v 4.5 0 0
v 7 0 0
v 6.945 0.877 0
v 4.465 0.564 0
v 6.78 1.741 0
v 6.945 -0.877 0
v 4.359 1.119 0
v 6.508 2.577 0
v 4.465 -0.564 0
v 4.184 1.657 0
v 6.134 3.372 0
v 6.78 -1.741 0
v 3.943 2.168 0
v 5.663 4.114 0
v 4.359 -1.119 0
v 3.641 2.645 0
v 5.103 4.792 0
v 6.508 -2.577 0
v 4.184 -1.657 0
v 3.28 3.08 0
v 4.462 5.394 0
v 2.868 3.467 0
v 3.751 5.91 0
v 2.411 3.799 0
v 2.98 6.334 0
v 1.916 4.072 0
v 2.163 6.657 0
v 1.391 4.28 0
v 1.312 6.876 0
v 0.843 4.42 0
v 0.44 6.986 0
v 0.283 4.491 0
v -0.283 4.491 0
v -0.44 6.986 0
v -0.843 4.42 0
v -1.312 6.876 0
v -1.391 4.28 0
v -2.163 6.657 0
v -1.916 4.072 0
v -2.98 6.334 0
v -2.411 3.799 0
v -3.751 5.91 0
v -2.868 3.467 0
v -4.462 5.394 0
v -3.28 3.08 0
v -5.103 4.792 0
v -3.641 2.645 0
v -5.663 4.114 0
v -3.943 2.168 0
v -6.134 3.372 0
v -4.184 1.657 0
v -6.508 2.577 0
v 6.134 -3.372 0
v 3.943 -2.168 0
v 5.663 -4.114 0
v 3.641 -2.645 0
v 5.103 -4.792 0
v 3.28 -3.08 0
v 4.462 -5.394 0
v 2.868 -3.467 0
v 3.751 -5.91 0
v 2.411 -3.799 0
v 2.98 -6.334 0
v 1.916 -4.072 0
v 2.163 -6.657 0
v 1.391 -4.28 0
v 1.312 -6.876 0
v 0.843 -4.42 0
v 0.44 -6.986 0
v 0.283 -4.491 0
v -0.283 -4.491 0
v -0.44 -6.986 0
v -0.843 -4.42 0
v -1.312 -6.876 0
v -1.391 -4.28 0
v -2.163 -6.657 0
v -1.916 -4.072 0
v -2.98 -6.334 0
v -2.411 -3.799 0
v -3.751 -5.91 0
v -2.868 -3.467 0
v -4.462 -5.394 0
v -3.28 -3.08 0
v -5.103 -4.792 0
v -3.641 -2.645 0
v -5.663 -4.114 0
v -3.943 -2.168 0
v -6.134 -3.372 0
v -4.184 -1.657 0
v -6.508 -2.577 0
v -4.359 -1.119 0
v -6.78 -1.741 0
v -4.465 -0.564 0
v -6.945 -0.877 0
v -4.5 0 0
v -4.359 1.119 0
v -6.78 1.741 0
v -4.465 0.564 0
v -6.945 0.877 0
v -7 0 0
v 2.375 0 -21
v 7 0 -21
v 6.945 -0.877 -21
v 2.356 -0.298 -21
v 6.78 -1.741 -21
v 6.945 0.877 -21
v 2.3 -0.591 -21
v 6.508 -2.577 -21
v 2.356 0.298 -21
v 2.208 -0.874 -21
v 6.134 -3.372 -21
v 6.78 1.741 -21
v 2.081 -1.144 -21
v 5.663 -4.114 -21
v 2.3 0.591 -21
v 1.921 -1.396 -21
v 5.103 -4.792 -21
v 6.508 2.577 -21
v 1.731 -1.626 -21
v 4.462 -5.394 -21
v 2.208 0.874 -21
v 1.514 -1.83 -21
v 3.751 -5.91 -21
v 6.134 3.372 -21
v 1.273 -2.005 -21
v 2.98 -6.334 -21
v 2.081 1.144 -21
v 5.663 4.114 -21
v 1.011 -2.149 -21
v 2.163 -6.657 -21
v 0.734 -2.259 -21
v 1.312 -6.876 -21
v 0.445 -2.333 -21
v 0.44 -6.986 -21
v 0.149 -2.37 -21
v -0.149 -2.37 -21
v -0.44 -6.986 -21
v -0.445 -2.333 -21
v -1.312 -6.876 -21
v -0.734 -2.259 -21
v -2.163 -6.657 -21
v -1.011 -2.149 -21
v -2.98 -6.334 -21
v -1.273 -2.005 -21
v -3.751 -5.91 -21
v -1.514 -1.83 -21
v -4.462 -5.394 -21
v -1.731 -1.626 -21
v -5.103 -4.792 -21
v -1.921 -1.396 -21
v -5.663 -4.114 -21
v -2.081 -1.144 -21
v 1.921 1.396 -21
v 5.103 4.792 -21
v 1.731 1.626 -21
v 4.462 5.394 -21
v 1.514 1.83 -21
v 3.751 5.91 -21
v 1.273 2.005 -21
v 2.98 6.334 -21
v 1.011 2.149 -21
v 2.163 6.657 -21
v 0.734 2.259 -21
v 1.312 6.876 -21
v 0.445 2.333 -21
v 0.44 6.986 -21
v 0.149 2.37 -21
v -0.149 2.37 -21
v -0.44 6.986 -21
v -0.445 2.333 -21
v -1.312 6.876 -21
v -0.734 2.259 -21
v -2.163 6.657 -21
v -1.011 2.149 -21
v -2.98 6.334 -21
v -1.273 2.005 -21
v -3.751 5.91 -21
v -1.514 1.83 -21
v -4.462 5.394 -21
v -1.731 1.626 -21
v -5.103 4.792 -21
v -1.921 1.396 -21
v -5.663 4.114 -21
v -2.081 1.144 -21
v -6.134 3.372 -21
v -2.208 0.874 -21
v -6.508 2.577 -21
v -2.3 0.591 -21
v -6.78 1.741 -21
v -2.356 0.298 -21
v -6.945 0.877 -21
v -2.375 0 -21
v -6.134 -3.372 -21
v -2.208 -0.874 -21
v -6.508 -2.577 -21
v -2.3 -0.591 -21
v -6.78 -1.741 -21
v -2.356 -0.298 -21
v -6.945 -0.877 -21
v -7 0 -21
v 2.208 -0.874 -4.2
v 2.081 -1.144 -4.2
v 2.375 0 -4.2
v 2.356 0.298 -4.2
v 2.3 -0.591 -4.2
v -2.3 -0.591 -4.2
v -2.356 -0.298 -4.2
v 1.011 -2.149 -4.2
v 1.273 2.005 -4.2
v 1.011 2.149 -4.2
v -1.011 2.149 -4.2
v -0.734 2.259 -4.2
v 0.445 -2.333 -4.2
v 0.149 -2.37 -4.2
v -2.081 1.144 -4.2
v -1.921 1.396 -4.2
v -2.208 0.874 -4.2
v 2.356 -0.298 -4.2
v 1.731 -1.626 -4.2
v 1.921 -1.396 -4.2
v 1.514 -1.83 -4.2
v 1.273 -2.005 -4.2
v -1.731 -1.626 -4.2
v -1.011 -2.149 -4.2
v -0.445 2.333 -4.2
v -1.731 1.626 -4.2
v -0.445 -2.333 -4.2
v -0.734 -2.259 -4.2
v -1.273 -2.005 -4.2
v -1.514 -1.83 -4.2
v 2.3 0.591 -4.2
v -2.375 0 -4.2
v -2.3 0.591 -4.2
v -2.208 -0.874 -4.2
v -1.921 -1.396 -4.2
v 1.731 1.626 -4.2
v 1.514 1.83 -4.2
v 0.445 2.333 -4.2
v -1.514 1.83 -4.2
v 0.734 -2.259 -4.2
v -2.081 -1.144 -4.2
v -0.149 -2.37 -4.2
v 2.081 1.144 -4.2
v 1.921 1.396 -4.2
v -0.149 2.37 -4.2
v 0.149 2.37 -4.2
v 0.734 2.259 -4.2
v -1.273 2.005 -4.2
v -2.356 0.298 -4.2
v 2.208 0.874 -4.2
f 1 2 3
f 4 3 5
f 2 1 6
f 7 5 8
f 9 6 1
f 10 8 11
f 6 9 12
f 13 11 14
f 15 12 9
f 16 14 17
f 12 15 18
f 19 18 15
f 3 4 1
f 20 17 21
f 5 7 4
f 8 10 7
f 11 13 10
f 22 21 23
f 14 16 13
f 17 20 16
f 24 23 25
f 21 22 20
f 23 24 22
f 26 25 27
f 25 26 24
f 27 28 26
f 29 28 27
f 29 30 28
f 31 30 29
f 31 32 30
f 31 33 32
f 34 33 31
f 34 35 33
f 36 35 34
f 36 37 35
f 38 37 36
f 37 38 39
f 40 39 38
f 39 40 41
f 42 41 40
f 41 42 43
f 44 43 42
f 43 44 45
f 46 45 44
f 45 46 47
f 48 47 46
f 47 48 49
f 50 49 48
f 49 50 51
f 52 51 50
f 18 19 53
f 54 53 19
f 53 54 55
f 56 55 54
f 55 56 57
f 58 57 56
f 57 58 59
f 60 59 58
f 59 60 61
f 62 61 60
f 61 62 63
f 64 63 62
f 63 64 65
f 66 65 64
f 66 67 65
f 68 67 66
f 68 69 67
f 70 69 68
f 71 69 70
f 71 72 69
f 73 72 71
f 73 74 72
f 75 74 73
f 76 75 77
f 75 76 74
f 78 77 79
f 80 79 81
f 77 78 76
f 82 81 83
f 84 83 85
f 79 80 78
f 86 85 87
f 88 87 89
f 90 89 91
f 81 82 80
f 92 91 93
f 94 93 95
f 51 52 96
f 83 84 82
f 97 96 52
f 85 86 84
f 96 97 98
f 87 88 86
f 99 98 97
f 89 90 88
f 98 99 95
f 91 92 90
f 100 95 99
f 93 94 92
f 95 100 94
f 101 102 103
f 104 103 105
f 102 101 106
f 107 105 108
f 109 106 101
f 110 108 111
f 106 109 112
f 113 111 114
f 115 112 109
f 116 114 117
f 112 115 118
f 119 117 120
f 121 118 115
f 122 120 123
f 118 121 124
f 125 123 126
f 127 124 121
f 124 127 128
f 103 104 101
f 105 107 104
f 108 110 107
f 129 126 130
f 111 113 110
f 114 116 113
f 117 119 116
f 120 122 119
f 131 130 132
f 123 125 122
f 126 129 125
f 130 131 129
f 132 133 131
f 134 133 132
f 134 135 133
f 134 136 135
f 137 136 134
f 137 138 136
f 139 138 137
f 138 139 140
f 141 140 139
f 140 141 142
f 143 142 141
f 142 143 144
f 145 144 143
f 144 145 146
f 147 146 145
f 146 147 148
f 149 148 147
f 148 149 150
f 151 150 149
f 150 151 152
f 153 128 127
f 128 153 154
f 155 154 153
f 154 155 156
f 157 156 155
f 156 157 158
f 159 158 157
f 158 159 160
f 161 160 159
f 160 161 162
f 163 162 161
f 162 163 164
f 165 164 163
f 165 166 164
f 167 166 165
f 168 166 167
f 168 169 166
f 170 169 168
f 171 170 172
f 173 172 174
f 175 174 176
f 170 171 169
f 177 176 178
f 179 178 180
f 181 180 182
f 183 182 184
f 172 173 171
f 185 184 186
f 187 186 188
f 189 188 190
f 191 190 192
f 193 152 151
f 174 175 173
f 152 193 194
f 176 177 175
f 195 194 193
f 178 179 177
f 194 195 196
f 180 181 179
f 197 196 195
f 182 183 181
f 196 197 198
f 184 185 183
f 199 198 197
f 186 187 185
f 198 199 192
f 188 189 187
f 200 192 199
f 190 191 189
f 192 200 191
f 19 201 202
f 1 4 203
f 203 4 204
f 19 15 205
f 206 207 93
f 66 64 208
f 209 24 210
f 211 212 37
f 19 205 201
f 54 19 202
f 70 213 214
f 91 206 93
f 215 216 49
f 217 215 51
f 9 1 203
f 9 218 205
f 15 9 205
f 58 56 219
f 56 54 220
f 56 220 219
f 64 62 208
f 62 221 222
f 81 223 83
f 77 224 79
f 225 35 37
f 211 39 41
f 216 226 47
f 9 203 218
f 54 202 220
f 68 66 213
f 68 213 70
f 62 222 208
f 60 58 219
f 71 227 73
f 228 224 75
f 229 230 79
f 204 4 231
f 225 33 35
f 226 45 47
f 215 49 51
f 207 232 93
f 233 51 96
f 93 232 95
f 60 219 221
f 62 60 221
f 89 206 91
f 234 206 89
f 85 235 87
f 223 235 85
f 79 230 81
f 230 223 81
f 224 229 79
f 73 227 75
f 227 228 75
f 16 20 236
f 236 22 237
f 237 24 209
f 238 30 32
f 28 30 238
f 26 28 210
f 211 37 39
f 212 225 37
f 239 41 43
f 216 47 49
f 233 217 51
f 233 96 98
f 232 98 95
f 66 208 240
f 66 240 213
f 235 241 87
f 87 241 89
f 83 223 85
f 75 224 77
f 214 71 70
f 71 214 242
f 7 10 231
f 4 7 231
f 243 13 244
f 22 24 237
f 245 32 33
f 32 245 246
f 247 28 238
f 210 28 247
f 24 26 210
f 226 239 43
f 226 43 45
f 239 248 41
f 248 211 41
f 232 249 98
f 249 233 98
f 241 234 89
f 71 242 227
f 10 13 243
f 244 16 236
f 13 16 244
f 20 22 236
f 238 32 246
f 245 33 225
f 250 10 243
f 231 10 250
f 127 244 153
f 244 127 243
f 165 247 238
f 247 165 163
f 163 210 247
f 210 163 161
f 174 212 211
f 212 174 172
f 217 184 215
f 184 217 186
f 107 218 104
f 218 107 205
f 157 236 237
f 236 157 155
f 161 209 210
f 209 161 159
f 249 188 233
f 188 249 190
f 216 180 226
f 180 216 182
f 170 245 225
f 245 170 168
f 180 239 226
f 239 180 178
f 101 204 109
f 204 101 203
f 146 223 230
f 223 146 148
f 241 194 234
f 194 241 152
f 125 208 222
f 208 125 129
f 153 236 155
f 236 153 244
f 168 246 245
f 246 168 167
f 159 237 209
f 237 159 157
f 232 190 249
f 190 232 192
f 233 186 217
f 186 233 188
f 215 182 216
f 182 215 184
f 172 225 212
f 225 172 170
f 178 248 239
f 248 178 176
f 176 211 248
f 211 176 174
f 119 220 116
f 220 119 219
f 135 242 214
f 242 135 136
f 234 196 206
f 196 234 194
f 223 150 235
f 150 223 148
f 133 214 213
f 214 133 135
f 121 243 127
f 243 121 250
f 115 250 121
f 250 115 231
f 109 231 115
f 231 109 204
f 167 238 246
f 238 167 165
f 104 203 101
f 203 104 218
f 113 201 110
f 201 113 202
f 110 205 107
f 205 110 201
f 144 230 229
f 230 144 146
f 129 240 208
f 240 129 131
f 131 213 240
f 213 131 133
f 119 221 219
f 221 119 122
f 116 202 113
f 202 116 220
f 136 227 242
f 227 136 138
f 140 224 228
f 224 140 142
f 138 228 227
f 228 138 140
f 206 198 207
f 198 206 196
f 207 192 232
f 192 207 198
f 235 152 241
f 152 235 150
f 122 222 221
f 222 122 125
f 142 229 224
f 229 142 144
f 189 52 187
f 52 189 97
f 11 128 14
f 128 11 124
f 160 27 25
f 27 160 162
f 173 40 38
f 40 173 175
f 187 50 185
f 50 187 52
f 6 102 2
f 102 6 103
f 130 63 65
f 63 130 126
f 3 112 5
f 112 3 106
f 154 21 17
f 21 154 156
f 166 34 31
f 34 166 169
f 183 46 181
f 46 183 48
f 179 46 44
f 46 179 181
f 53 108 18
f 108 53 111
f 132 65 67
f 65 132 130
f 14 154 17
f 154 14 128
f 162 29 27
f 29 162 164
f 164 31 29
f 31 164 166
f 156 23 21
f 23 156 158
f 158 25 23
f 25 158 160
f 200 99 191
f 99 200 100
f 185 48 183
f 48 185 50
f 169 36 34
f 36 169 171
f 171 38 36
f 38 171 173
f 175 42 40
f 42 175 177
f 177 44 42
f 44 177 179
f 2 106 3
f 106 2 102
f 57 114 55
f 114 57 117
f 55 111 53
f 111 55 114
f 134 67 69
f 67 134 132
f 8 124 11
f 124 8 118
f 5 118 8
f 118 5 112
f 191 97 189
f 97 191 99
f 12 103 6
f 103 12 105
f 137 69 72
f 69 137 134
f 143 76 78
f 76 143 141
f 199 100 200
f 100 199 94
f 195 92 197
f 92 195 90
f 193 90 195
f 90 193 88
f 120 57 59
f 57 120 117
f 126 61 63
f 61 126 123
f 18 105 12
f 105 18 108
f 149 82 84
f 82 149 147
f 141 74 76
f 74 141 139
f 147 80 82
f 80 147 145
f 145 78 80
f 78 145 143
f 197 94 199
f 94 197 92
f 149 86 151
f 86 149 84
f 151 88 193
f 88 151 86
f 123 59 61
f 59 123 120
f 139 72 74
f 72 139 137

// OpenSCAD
$fn = 50;


difference() {
	union() {
		translate(v = [0, 0, -21.0000000000]) {
			cylinder(h = 21, r = 7.0000000000);
		}
	}
	union() {
		translate(v = [0, 0, 0]) {
			rotate(a = [0, 0, 0]) {
				difference() {
					union() {
						#translate(v = [0, 0, -21.0000000000]) {
							cylinder(h = 21, r = 2.2500000000);
						}
						#translate(v = [0, 0, -4.2000000000]) {
							cylinder(h = 4.2000000000, r = 7.0000000000, r1 = 2.3750000000, r2 = 4.5000000000);
						}
						#translate(v = [0, 0, -21.0000000000]) {
							cylinder(h = 21, r = 2.3750000000);
						}
						#translate(v = [0, 0, -21.0000000000]) {
							cylinder(h = 21, r = 2.2500000000);
						}
					}
					union();
				}
			}
		}
	}
}
